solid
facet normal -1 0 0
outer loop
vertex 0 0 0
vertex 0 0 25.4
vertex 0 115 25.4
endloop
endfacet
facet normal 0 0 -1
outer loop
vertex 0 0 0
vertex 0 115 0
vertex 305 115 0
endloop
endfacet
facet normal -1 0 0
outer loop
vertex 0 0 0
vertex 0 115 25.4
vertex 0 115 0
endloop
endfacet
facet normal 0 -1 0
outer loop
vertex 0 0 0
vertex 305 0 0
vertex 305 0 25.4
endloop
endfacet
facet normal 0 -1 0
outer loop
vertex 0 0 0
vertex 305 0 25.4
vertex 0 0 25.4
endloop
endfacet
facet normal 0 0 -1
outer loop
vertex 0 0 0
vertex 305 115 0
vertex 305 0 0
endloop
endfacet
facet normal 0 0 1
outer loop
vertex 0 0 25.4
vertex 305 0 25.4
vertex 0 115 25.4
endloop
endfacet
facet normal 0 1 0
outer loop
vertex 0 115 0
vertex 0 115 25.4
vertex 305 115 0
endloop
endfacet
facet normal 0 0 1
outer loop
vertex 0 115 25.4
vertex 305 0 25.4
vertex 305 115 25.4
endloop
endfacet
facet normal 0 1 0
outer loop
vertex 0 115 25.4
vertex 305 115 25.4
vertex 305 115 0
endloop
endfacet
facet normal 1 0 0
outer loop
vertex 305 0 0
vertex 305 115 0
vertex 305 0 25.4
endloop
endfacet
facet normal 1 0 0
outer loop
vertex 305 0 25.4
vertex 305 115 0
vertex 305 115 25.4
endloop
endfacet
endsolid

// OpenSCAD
$fn = 32;
mm = 25.4;

wid = 305;
len = 115;

thk = 1*mm;

cube( [wid, len, thk]);
